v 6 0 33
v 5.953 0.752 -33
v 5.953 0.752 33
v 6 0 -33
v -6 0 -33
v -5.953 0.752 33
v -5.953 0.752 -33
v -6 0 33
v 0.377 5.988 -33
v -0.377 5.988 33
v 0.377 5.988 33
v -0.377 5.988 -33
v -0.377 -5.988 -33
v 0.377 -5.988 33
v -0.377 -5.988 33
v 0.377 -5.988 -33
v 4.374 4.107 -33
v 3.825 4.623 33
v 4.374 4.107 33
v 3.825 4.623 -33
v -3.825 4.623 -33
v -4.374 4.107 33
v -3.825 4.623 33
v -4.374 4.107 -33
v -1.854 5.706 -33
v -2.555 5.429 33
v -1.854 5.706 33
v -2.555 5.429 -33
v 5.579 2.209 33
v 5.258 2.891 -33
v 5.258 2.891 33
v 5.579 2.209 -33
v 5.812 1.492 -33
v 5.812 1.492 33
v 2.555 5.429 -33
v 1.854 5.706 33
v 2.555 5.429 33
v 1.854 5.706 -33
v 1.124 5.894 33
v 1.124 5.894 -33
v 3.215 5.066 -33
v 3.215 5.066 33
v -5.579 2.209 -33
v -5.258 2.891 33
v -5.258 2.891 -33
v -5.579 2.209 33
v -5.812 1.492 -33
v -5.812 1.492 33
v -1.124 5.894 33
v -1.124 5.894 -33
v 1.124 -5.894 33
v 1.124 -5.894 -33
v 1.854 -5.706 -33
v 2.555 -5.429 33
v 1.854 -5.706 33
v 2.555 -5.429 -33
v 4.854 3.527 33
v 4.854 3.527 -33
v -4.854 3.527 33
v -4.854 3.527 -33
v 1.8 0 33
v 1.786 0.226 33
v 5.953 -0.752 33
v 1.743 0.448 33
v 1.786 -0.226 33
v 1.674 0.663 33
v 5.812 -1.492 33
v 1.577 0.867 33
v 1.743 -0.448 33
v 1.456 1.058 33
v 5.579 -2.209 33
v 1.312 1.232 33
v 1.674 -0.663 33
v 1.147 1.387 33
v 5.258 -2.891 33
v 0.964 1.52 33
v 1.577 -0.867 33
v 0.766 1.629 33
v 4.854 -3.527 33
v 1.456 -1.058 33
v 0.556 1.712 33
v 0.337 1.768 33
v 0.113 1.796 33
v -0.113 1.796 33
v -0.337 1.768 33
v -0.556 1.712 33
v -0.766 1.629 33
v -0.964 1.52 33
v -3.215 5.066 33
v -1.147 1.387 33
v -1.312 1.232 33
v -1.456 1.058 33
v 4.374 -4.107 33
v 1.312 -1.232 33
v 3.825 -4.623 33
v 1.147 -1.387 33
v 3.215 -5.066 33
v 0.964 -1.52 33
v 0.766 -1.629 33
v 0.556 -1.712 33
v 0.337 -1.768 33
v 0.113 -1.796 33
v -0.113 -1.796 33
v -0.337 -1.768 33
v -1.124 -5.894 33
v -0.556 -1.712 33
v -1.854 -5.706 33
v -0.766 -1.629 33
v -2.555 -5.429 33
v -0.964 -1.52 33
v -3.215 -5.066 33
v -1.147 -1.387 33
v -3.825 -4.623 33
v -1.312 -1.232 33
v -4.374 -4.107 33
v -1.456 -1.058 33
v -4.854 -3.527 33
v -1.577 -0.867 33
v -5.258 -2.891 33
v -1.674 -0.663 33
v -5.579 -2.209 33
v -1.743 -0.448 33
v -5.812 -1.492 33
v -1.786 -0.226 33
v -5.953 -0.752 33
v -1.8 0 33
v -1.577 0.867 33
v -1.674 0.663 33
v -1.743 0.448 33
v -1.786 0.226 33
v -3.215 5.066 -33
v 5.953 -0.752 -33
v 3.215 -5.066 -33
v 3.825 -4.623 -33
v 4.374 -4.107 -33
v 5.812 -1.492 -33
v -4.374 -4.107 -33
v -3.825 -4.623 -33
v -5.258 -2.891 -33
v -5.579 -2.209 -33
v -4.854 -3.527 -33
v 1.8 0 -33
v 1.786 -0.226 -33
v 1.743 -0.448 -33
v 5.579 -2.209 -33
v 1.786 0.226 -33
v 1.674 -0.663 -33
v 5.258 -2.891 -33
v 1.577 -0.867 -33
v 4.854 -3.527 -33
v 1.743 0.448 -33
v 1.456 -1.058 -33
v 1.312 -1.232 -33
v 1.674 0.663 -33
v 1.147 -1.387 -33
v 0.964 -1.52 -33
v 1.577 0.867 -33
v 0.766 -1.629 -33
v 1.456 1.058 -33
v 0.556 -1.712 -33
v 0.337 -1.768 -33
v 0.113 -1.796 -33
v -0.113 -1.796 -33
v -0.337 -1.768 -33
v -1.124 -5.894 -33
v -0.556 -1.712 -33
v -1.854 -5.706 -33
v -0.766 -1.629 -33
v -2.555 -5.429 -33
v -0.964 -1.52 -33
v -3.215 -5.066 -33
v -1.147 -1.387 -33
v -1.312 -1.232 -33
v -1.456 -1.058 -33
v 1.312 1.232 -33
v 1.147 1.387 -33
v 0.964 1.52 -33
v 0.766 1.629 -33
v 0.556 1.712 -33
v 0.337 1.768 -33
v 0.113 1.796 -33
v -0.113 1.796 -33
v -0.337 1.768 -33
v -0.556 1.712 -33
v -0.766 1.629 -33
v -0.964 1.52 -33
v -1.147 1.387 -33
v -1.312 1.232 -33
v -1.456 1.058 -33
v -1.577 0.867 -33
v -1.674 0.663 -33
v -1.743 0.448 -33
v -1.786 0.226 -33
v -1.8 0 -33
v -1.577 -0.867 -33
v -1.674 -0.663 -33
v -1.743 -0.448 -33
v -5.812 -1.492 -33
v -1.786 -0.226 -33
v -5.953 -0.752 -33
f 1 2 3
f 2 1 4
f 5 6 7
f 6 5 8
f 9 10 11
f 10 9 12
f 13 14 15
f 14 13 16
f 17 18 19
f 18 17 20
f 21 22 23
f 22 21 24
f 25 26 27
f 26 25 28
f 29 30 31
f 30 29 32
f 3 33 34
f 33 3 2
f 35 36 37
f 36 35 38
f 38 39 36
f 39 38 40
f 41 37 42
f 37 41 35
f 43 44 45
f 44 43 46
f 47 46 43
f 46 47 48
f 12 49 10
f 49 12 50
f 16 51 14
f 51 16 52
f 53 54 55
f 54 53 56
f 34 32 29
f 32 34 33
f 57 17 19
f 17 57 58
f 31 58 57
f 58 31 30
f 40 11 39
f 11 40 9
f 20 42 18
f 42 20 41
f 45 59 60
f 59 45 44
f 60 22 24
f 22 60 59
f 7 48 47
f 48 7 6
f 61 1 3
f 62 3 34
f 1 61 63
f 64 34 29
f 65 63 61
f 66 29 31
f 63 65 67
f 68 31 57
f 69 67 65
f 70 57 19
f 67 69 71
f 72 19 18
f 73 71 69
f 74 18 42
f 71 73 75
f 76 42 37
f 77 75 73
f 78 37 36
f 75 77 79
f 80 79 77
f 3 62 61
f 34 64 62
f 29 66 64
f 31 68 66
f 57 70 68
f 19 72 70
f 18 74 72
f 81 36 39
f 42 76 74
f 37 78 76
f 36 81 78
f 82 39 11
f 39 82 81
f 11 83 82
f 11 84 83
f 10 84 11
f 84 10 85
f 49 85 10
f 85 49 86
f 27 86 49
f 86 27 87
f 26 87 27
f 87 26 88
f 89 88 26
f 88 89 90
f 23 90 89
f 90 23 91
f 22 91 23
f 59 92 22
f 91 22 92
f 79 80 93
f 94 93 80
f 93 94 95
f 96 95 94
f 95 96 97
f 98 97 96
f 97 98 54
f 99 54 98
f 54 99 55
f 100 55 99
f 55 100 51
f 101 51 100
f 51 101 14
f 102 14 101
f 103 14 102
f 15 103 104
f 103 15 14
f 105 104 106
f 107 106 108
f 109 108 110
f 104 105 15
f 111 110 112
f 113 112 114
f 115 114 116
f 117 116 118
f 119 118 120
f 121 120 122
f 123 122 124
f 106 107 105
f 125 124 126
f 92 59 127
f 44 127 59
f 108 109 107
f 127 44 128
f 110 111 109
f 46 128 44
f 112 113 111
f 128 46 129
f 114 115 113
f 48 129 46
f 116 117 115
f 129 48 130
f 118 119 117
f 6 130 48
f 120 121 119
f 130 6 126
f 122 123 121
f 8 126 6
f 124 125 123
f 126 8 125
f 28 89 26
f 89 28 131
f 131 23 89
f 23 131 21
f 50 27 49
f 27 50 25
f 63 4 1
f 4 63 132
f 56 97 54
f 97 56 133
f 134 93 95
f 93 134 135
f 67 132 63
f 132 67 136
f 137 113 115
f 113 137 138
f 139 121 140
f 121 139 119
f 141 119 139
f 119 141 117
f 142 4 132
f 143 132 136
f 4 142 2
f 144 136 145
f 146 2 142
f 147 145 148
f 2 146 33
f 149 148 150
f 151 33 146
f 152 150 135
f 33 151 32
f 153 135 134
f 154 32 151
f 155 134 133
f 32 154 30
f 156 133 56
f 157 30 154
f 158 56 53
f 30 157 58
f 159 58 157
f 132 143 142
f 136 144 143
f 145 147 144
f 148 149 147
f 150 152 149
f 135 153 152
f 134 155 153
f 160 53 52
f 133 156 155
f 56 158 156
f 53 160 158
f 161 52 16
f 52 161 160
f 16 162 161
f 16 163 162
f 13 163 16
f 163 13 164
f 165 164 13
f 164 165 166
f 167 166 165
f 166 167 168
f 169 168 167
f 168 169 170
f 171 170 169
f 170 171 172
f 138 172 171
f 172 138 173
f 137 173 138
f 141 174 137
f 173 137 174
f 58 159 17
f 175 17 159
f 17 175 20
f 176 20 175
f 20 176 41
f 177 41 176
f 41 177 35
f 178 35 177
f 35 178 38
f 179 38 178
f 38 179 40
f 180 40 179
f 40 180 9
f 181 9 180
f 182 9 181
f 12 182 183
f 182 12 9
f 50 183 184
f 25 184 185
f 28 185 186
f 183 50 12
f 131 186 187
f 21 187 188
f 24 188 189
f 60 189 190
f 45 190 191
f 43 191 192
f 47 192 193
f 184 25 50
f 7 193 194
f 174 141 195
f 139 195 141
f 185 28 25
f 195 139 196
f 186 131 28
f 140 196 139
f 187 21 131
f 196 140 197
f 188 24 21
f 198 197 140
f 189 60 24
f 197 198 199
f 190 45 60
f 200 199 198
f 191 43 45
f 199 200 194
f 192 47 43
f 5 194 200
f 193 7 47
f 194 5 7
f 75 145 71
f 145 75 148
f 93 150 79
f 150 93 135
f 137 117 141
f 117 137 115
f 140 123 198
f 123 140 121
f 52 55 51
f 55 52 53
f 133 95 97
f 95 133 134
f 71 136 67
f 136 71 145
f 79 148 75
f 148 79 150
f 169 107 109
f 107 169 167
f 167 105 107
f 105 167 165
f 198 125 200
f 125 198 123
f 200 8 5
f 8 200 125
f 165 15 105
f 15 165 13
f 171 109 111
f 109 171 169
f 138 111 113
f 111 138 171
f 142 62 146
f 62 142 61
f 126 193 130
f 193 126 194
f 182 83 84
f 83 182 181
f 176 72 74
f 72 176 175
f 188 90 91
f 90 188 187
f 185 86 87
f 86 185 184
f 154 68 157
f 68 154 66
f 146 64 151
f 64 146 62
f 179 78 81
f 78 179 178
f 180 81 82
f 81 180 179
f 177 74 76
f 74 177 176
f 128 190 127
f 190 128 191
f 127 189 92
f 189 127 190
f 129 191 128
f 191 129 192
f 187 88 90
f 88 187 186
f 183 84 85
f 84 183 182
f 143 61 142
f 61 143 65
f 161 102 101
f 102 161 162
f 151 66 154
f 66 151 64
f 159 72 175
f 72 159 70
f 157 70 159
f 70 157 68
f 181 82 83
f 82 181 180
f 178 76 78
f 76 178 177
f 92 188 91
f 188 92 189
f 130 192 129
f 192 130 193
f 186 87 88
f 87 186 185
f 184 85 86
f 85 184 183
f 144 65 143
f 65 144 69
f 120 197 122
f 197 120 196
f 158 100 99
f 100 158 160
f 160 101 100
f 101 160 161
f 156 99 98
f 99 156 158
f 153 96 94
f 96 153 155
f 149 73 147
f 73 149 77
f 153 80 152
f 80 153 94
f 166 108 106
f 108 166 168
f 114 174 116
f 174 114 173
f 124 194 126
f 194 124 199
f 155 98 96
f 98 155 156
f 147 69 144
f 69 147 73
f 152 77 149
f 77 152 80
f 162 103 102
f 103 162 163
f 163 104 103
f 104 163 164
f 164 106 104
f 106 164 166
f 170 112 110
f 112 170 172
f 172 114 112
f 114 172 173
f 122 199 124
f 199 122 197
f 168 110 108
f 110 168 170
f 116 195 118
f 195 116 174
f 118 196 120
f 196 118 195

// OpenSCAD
$fn = 50;


difference() {
	union() {
		translate(v = [0, 0, -33.0000000000]) {
			cylinder(h = 66, r = 6.0000000000);
		}
	}
	union() {
		translate(v = [0, 0, -100.0000000000]) {
			cylinder(h = 200, r = 1.8000000000);
		}
	}
}
